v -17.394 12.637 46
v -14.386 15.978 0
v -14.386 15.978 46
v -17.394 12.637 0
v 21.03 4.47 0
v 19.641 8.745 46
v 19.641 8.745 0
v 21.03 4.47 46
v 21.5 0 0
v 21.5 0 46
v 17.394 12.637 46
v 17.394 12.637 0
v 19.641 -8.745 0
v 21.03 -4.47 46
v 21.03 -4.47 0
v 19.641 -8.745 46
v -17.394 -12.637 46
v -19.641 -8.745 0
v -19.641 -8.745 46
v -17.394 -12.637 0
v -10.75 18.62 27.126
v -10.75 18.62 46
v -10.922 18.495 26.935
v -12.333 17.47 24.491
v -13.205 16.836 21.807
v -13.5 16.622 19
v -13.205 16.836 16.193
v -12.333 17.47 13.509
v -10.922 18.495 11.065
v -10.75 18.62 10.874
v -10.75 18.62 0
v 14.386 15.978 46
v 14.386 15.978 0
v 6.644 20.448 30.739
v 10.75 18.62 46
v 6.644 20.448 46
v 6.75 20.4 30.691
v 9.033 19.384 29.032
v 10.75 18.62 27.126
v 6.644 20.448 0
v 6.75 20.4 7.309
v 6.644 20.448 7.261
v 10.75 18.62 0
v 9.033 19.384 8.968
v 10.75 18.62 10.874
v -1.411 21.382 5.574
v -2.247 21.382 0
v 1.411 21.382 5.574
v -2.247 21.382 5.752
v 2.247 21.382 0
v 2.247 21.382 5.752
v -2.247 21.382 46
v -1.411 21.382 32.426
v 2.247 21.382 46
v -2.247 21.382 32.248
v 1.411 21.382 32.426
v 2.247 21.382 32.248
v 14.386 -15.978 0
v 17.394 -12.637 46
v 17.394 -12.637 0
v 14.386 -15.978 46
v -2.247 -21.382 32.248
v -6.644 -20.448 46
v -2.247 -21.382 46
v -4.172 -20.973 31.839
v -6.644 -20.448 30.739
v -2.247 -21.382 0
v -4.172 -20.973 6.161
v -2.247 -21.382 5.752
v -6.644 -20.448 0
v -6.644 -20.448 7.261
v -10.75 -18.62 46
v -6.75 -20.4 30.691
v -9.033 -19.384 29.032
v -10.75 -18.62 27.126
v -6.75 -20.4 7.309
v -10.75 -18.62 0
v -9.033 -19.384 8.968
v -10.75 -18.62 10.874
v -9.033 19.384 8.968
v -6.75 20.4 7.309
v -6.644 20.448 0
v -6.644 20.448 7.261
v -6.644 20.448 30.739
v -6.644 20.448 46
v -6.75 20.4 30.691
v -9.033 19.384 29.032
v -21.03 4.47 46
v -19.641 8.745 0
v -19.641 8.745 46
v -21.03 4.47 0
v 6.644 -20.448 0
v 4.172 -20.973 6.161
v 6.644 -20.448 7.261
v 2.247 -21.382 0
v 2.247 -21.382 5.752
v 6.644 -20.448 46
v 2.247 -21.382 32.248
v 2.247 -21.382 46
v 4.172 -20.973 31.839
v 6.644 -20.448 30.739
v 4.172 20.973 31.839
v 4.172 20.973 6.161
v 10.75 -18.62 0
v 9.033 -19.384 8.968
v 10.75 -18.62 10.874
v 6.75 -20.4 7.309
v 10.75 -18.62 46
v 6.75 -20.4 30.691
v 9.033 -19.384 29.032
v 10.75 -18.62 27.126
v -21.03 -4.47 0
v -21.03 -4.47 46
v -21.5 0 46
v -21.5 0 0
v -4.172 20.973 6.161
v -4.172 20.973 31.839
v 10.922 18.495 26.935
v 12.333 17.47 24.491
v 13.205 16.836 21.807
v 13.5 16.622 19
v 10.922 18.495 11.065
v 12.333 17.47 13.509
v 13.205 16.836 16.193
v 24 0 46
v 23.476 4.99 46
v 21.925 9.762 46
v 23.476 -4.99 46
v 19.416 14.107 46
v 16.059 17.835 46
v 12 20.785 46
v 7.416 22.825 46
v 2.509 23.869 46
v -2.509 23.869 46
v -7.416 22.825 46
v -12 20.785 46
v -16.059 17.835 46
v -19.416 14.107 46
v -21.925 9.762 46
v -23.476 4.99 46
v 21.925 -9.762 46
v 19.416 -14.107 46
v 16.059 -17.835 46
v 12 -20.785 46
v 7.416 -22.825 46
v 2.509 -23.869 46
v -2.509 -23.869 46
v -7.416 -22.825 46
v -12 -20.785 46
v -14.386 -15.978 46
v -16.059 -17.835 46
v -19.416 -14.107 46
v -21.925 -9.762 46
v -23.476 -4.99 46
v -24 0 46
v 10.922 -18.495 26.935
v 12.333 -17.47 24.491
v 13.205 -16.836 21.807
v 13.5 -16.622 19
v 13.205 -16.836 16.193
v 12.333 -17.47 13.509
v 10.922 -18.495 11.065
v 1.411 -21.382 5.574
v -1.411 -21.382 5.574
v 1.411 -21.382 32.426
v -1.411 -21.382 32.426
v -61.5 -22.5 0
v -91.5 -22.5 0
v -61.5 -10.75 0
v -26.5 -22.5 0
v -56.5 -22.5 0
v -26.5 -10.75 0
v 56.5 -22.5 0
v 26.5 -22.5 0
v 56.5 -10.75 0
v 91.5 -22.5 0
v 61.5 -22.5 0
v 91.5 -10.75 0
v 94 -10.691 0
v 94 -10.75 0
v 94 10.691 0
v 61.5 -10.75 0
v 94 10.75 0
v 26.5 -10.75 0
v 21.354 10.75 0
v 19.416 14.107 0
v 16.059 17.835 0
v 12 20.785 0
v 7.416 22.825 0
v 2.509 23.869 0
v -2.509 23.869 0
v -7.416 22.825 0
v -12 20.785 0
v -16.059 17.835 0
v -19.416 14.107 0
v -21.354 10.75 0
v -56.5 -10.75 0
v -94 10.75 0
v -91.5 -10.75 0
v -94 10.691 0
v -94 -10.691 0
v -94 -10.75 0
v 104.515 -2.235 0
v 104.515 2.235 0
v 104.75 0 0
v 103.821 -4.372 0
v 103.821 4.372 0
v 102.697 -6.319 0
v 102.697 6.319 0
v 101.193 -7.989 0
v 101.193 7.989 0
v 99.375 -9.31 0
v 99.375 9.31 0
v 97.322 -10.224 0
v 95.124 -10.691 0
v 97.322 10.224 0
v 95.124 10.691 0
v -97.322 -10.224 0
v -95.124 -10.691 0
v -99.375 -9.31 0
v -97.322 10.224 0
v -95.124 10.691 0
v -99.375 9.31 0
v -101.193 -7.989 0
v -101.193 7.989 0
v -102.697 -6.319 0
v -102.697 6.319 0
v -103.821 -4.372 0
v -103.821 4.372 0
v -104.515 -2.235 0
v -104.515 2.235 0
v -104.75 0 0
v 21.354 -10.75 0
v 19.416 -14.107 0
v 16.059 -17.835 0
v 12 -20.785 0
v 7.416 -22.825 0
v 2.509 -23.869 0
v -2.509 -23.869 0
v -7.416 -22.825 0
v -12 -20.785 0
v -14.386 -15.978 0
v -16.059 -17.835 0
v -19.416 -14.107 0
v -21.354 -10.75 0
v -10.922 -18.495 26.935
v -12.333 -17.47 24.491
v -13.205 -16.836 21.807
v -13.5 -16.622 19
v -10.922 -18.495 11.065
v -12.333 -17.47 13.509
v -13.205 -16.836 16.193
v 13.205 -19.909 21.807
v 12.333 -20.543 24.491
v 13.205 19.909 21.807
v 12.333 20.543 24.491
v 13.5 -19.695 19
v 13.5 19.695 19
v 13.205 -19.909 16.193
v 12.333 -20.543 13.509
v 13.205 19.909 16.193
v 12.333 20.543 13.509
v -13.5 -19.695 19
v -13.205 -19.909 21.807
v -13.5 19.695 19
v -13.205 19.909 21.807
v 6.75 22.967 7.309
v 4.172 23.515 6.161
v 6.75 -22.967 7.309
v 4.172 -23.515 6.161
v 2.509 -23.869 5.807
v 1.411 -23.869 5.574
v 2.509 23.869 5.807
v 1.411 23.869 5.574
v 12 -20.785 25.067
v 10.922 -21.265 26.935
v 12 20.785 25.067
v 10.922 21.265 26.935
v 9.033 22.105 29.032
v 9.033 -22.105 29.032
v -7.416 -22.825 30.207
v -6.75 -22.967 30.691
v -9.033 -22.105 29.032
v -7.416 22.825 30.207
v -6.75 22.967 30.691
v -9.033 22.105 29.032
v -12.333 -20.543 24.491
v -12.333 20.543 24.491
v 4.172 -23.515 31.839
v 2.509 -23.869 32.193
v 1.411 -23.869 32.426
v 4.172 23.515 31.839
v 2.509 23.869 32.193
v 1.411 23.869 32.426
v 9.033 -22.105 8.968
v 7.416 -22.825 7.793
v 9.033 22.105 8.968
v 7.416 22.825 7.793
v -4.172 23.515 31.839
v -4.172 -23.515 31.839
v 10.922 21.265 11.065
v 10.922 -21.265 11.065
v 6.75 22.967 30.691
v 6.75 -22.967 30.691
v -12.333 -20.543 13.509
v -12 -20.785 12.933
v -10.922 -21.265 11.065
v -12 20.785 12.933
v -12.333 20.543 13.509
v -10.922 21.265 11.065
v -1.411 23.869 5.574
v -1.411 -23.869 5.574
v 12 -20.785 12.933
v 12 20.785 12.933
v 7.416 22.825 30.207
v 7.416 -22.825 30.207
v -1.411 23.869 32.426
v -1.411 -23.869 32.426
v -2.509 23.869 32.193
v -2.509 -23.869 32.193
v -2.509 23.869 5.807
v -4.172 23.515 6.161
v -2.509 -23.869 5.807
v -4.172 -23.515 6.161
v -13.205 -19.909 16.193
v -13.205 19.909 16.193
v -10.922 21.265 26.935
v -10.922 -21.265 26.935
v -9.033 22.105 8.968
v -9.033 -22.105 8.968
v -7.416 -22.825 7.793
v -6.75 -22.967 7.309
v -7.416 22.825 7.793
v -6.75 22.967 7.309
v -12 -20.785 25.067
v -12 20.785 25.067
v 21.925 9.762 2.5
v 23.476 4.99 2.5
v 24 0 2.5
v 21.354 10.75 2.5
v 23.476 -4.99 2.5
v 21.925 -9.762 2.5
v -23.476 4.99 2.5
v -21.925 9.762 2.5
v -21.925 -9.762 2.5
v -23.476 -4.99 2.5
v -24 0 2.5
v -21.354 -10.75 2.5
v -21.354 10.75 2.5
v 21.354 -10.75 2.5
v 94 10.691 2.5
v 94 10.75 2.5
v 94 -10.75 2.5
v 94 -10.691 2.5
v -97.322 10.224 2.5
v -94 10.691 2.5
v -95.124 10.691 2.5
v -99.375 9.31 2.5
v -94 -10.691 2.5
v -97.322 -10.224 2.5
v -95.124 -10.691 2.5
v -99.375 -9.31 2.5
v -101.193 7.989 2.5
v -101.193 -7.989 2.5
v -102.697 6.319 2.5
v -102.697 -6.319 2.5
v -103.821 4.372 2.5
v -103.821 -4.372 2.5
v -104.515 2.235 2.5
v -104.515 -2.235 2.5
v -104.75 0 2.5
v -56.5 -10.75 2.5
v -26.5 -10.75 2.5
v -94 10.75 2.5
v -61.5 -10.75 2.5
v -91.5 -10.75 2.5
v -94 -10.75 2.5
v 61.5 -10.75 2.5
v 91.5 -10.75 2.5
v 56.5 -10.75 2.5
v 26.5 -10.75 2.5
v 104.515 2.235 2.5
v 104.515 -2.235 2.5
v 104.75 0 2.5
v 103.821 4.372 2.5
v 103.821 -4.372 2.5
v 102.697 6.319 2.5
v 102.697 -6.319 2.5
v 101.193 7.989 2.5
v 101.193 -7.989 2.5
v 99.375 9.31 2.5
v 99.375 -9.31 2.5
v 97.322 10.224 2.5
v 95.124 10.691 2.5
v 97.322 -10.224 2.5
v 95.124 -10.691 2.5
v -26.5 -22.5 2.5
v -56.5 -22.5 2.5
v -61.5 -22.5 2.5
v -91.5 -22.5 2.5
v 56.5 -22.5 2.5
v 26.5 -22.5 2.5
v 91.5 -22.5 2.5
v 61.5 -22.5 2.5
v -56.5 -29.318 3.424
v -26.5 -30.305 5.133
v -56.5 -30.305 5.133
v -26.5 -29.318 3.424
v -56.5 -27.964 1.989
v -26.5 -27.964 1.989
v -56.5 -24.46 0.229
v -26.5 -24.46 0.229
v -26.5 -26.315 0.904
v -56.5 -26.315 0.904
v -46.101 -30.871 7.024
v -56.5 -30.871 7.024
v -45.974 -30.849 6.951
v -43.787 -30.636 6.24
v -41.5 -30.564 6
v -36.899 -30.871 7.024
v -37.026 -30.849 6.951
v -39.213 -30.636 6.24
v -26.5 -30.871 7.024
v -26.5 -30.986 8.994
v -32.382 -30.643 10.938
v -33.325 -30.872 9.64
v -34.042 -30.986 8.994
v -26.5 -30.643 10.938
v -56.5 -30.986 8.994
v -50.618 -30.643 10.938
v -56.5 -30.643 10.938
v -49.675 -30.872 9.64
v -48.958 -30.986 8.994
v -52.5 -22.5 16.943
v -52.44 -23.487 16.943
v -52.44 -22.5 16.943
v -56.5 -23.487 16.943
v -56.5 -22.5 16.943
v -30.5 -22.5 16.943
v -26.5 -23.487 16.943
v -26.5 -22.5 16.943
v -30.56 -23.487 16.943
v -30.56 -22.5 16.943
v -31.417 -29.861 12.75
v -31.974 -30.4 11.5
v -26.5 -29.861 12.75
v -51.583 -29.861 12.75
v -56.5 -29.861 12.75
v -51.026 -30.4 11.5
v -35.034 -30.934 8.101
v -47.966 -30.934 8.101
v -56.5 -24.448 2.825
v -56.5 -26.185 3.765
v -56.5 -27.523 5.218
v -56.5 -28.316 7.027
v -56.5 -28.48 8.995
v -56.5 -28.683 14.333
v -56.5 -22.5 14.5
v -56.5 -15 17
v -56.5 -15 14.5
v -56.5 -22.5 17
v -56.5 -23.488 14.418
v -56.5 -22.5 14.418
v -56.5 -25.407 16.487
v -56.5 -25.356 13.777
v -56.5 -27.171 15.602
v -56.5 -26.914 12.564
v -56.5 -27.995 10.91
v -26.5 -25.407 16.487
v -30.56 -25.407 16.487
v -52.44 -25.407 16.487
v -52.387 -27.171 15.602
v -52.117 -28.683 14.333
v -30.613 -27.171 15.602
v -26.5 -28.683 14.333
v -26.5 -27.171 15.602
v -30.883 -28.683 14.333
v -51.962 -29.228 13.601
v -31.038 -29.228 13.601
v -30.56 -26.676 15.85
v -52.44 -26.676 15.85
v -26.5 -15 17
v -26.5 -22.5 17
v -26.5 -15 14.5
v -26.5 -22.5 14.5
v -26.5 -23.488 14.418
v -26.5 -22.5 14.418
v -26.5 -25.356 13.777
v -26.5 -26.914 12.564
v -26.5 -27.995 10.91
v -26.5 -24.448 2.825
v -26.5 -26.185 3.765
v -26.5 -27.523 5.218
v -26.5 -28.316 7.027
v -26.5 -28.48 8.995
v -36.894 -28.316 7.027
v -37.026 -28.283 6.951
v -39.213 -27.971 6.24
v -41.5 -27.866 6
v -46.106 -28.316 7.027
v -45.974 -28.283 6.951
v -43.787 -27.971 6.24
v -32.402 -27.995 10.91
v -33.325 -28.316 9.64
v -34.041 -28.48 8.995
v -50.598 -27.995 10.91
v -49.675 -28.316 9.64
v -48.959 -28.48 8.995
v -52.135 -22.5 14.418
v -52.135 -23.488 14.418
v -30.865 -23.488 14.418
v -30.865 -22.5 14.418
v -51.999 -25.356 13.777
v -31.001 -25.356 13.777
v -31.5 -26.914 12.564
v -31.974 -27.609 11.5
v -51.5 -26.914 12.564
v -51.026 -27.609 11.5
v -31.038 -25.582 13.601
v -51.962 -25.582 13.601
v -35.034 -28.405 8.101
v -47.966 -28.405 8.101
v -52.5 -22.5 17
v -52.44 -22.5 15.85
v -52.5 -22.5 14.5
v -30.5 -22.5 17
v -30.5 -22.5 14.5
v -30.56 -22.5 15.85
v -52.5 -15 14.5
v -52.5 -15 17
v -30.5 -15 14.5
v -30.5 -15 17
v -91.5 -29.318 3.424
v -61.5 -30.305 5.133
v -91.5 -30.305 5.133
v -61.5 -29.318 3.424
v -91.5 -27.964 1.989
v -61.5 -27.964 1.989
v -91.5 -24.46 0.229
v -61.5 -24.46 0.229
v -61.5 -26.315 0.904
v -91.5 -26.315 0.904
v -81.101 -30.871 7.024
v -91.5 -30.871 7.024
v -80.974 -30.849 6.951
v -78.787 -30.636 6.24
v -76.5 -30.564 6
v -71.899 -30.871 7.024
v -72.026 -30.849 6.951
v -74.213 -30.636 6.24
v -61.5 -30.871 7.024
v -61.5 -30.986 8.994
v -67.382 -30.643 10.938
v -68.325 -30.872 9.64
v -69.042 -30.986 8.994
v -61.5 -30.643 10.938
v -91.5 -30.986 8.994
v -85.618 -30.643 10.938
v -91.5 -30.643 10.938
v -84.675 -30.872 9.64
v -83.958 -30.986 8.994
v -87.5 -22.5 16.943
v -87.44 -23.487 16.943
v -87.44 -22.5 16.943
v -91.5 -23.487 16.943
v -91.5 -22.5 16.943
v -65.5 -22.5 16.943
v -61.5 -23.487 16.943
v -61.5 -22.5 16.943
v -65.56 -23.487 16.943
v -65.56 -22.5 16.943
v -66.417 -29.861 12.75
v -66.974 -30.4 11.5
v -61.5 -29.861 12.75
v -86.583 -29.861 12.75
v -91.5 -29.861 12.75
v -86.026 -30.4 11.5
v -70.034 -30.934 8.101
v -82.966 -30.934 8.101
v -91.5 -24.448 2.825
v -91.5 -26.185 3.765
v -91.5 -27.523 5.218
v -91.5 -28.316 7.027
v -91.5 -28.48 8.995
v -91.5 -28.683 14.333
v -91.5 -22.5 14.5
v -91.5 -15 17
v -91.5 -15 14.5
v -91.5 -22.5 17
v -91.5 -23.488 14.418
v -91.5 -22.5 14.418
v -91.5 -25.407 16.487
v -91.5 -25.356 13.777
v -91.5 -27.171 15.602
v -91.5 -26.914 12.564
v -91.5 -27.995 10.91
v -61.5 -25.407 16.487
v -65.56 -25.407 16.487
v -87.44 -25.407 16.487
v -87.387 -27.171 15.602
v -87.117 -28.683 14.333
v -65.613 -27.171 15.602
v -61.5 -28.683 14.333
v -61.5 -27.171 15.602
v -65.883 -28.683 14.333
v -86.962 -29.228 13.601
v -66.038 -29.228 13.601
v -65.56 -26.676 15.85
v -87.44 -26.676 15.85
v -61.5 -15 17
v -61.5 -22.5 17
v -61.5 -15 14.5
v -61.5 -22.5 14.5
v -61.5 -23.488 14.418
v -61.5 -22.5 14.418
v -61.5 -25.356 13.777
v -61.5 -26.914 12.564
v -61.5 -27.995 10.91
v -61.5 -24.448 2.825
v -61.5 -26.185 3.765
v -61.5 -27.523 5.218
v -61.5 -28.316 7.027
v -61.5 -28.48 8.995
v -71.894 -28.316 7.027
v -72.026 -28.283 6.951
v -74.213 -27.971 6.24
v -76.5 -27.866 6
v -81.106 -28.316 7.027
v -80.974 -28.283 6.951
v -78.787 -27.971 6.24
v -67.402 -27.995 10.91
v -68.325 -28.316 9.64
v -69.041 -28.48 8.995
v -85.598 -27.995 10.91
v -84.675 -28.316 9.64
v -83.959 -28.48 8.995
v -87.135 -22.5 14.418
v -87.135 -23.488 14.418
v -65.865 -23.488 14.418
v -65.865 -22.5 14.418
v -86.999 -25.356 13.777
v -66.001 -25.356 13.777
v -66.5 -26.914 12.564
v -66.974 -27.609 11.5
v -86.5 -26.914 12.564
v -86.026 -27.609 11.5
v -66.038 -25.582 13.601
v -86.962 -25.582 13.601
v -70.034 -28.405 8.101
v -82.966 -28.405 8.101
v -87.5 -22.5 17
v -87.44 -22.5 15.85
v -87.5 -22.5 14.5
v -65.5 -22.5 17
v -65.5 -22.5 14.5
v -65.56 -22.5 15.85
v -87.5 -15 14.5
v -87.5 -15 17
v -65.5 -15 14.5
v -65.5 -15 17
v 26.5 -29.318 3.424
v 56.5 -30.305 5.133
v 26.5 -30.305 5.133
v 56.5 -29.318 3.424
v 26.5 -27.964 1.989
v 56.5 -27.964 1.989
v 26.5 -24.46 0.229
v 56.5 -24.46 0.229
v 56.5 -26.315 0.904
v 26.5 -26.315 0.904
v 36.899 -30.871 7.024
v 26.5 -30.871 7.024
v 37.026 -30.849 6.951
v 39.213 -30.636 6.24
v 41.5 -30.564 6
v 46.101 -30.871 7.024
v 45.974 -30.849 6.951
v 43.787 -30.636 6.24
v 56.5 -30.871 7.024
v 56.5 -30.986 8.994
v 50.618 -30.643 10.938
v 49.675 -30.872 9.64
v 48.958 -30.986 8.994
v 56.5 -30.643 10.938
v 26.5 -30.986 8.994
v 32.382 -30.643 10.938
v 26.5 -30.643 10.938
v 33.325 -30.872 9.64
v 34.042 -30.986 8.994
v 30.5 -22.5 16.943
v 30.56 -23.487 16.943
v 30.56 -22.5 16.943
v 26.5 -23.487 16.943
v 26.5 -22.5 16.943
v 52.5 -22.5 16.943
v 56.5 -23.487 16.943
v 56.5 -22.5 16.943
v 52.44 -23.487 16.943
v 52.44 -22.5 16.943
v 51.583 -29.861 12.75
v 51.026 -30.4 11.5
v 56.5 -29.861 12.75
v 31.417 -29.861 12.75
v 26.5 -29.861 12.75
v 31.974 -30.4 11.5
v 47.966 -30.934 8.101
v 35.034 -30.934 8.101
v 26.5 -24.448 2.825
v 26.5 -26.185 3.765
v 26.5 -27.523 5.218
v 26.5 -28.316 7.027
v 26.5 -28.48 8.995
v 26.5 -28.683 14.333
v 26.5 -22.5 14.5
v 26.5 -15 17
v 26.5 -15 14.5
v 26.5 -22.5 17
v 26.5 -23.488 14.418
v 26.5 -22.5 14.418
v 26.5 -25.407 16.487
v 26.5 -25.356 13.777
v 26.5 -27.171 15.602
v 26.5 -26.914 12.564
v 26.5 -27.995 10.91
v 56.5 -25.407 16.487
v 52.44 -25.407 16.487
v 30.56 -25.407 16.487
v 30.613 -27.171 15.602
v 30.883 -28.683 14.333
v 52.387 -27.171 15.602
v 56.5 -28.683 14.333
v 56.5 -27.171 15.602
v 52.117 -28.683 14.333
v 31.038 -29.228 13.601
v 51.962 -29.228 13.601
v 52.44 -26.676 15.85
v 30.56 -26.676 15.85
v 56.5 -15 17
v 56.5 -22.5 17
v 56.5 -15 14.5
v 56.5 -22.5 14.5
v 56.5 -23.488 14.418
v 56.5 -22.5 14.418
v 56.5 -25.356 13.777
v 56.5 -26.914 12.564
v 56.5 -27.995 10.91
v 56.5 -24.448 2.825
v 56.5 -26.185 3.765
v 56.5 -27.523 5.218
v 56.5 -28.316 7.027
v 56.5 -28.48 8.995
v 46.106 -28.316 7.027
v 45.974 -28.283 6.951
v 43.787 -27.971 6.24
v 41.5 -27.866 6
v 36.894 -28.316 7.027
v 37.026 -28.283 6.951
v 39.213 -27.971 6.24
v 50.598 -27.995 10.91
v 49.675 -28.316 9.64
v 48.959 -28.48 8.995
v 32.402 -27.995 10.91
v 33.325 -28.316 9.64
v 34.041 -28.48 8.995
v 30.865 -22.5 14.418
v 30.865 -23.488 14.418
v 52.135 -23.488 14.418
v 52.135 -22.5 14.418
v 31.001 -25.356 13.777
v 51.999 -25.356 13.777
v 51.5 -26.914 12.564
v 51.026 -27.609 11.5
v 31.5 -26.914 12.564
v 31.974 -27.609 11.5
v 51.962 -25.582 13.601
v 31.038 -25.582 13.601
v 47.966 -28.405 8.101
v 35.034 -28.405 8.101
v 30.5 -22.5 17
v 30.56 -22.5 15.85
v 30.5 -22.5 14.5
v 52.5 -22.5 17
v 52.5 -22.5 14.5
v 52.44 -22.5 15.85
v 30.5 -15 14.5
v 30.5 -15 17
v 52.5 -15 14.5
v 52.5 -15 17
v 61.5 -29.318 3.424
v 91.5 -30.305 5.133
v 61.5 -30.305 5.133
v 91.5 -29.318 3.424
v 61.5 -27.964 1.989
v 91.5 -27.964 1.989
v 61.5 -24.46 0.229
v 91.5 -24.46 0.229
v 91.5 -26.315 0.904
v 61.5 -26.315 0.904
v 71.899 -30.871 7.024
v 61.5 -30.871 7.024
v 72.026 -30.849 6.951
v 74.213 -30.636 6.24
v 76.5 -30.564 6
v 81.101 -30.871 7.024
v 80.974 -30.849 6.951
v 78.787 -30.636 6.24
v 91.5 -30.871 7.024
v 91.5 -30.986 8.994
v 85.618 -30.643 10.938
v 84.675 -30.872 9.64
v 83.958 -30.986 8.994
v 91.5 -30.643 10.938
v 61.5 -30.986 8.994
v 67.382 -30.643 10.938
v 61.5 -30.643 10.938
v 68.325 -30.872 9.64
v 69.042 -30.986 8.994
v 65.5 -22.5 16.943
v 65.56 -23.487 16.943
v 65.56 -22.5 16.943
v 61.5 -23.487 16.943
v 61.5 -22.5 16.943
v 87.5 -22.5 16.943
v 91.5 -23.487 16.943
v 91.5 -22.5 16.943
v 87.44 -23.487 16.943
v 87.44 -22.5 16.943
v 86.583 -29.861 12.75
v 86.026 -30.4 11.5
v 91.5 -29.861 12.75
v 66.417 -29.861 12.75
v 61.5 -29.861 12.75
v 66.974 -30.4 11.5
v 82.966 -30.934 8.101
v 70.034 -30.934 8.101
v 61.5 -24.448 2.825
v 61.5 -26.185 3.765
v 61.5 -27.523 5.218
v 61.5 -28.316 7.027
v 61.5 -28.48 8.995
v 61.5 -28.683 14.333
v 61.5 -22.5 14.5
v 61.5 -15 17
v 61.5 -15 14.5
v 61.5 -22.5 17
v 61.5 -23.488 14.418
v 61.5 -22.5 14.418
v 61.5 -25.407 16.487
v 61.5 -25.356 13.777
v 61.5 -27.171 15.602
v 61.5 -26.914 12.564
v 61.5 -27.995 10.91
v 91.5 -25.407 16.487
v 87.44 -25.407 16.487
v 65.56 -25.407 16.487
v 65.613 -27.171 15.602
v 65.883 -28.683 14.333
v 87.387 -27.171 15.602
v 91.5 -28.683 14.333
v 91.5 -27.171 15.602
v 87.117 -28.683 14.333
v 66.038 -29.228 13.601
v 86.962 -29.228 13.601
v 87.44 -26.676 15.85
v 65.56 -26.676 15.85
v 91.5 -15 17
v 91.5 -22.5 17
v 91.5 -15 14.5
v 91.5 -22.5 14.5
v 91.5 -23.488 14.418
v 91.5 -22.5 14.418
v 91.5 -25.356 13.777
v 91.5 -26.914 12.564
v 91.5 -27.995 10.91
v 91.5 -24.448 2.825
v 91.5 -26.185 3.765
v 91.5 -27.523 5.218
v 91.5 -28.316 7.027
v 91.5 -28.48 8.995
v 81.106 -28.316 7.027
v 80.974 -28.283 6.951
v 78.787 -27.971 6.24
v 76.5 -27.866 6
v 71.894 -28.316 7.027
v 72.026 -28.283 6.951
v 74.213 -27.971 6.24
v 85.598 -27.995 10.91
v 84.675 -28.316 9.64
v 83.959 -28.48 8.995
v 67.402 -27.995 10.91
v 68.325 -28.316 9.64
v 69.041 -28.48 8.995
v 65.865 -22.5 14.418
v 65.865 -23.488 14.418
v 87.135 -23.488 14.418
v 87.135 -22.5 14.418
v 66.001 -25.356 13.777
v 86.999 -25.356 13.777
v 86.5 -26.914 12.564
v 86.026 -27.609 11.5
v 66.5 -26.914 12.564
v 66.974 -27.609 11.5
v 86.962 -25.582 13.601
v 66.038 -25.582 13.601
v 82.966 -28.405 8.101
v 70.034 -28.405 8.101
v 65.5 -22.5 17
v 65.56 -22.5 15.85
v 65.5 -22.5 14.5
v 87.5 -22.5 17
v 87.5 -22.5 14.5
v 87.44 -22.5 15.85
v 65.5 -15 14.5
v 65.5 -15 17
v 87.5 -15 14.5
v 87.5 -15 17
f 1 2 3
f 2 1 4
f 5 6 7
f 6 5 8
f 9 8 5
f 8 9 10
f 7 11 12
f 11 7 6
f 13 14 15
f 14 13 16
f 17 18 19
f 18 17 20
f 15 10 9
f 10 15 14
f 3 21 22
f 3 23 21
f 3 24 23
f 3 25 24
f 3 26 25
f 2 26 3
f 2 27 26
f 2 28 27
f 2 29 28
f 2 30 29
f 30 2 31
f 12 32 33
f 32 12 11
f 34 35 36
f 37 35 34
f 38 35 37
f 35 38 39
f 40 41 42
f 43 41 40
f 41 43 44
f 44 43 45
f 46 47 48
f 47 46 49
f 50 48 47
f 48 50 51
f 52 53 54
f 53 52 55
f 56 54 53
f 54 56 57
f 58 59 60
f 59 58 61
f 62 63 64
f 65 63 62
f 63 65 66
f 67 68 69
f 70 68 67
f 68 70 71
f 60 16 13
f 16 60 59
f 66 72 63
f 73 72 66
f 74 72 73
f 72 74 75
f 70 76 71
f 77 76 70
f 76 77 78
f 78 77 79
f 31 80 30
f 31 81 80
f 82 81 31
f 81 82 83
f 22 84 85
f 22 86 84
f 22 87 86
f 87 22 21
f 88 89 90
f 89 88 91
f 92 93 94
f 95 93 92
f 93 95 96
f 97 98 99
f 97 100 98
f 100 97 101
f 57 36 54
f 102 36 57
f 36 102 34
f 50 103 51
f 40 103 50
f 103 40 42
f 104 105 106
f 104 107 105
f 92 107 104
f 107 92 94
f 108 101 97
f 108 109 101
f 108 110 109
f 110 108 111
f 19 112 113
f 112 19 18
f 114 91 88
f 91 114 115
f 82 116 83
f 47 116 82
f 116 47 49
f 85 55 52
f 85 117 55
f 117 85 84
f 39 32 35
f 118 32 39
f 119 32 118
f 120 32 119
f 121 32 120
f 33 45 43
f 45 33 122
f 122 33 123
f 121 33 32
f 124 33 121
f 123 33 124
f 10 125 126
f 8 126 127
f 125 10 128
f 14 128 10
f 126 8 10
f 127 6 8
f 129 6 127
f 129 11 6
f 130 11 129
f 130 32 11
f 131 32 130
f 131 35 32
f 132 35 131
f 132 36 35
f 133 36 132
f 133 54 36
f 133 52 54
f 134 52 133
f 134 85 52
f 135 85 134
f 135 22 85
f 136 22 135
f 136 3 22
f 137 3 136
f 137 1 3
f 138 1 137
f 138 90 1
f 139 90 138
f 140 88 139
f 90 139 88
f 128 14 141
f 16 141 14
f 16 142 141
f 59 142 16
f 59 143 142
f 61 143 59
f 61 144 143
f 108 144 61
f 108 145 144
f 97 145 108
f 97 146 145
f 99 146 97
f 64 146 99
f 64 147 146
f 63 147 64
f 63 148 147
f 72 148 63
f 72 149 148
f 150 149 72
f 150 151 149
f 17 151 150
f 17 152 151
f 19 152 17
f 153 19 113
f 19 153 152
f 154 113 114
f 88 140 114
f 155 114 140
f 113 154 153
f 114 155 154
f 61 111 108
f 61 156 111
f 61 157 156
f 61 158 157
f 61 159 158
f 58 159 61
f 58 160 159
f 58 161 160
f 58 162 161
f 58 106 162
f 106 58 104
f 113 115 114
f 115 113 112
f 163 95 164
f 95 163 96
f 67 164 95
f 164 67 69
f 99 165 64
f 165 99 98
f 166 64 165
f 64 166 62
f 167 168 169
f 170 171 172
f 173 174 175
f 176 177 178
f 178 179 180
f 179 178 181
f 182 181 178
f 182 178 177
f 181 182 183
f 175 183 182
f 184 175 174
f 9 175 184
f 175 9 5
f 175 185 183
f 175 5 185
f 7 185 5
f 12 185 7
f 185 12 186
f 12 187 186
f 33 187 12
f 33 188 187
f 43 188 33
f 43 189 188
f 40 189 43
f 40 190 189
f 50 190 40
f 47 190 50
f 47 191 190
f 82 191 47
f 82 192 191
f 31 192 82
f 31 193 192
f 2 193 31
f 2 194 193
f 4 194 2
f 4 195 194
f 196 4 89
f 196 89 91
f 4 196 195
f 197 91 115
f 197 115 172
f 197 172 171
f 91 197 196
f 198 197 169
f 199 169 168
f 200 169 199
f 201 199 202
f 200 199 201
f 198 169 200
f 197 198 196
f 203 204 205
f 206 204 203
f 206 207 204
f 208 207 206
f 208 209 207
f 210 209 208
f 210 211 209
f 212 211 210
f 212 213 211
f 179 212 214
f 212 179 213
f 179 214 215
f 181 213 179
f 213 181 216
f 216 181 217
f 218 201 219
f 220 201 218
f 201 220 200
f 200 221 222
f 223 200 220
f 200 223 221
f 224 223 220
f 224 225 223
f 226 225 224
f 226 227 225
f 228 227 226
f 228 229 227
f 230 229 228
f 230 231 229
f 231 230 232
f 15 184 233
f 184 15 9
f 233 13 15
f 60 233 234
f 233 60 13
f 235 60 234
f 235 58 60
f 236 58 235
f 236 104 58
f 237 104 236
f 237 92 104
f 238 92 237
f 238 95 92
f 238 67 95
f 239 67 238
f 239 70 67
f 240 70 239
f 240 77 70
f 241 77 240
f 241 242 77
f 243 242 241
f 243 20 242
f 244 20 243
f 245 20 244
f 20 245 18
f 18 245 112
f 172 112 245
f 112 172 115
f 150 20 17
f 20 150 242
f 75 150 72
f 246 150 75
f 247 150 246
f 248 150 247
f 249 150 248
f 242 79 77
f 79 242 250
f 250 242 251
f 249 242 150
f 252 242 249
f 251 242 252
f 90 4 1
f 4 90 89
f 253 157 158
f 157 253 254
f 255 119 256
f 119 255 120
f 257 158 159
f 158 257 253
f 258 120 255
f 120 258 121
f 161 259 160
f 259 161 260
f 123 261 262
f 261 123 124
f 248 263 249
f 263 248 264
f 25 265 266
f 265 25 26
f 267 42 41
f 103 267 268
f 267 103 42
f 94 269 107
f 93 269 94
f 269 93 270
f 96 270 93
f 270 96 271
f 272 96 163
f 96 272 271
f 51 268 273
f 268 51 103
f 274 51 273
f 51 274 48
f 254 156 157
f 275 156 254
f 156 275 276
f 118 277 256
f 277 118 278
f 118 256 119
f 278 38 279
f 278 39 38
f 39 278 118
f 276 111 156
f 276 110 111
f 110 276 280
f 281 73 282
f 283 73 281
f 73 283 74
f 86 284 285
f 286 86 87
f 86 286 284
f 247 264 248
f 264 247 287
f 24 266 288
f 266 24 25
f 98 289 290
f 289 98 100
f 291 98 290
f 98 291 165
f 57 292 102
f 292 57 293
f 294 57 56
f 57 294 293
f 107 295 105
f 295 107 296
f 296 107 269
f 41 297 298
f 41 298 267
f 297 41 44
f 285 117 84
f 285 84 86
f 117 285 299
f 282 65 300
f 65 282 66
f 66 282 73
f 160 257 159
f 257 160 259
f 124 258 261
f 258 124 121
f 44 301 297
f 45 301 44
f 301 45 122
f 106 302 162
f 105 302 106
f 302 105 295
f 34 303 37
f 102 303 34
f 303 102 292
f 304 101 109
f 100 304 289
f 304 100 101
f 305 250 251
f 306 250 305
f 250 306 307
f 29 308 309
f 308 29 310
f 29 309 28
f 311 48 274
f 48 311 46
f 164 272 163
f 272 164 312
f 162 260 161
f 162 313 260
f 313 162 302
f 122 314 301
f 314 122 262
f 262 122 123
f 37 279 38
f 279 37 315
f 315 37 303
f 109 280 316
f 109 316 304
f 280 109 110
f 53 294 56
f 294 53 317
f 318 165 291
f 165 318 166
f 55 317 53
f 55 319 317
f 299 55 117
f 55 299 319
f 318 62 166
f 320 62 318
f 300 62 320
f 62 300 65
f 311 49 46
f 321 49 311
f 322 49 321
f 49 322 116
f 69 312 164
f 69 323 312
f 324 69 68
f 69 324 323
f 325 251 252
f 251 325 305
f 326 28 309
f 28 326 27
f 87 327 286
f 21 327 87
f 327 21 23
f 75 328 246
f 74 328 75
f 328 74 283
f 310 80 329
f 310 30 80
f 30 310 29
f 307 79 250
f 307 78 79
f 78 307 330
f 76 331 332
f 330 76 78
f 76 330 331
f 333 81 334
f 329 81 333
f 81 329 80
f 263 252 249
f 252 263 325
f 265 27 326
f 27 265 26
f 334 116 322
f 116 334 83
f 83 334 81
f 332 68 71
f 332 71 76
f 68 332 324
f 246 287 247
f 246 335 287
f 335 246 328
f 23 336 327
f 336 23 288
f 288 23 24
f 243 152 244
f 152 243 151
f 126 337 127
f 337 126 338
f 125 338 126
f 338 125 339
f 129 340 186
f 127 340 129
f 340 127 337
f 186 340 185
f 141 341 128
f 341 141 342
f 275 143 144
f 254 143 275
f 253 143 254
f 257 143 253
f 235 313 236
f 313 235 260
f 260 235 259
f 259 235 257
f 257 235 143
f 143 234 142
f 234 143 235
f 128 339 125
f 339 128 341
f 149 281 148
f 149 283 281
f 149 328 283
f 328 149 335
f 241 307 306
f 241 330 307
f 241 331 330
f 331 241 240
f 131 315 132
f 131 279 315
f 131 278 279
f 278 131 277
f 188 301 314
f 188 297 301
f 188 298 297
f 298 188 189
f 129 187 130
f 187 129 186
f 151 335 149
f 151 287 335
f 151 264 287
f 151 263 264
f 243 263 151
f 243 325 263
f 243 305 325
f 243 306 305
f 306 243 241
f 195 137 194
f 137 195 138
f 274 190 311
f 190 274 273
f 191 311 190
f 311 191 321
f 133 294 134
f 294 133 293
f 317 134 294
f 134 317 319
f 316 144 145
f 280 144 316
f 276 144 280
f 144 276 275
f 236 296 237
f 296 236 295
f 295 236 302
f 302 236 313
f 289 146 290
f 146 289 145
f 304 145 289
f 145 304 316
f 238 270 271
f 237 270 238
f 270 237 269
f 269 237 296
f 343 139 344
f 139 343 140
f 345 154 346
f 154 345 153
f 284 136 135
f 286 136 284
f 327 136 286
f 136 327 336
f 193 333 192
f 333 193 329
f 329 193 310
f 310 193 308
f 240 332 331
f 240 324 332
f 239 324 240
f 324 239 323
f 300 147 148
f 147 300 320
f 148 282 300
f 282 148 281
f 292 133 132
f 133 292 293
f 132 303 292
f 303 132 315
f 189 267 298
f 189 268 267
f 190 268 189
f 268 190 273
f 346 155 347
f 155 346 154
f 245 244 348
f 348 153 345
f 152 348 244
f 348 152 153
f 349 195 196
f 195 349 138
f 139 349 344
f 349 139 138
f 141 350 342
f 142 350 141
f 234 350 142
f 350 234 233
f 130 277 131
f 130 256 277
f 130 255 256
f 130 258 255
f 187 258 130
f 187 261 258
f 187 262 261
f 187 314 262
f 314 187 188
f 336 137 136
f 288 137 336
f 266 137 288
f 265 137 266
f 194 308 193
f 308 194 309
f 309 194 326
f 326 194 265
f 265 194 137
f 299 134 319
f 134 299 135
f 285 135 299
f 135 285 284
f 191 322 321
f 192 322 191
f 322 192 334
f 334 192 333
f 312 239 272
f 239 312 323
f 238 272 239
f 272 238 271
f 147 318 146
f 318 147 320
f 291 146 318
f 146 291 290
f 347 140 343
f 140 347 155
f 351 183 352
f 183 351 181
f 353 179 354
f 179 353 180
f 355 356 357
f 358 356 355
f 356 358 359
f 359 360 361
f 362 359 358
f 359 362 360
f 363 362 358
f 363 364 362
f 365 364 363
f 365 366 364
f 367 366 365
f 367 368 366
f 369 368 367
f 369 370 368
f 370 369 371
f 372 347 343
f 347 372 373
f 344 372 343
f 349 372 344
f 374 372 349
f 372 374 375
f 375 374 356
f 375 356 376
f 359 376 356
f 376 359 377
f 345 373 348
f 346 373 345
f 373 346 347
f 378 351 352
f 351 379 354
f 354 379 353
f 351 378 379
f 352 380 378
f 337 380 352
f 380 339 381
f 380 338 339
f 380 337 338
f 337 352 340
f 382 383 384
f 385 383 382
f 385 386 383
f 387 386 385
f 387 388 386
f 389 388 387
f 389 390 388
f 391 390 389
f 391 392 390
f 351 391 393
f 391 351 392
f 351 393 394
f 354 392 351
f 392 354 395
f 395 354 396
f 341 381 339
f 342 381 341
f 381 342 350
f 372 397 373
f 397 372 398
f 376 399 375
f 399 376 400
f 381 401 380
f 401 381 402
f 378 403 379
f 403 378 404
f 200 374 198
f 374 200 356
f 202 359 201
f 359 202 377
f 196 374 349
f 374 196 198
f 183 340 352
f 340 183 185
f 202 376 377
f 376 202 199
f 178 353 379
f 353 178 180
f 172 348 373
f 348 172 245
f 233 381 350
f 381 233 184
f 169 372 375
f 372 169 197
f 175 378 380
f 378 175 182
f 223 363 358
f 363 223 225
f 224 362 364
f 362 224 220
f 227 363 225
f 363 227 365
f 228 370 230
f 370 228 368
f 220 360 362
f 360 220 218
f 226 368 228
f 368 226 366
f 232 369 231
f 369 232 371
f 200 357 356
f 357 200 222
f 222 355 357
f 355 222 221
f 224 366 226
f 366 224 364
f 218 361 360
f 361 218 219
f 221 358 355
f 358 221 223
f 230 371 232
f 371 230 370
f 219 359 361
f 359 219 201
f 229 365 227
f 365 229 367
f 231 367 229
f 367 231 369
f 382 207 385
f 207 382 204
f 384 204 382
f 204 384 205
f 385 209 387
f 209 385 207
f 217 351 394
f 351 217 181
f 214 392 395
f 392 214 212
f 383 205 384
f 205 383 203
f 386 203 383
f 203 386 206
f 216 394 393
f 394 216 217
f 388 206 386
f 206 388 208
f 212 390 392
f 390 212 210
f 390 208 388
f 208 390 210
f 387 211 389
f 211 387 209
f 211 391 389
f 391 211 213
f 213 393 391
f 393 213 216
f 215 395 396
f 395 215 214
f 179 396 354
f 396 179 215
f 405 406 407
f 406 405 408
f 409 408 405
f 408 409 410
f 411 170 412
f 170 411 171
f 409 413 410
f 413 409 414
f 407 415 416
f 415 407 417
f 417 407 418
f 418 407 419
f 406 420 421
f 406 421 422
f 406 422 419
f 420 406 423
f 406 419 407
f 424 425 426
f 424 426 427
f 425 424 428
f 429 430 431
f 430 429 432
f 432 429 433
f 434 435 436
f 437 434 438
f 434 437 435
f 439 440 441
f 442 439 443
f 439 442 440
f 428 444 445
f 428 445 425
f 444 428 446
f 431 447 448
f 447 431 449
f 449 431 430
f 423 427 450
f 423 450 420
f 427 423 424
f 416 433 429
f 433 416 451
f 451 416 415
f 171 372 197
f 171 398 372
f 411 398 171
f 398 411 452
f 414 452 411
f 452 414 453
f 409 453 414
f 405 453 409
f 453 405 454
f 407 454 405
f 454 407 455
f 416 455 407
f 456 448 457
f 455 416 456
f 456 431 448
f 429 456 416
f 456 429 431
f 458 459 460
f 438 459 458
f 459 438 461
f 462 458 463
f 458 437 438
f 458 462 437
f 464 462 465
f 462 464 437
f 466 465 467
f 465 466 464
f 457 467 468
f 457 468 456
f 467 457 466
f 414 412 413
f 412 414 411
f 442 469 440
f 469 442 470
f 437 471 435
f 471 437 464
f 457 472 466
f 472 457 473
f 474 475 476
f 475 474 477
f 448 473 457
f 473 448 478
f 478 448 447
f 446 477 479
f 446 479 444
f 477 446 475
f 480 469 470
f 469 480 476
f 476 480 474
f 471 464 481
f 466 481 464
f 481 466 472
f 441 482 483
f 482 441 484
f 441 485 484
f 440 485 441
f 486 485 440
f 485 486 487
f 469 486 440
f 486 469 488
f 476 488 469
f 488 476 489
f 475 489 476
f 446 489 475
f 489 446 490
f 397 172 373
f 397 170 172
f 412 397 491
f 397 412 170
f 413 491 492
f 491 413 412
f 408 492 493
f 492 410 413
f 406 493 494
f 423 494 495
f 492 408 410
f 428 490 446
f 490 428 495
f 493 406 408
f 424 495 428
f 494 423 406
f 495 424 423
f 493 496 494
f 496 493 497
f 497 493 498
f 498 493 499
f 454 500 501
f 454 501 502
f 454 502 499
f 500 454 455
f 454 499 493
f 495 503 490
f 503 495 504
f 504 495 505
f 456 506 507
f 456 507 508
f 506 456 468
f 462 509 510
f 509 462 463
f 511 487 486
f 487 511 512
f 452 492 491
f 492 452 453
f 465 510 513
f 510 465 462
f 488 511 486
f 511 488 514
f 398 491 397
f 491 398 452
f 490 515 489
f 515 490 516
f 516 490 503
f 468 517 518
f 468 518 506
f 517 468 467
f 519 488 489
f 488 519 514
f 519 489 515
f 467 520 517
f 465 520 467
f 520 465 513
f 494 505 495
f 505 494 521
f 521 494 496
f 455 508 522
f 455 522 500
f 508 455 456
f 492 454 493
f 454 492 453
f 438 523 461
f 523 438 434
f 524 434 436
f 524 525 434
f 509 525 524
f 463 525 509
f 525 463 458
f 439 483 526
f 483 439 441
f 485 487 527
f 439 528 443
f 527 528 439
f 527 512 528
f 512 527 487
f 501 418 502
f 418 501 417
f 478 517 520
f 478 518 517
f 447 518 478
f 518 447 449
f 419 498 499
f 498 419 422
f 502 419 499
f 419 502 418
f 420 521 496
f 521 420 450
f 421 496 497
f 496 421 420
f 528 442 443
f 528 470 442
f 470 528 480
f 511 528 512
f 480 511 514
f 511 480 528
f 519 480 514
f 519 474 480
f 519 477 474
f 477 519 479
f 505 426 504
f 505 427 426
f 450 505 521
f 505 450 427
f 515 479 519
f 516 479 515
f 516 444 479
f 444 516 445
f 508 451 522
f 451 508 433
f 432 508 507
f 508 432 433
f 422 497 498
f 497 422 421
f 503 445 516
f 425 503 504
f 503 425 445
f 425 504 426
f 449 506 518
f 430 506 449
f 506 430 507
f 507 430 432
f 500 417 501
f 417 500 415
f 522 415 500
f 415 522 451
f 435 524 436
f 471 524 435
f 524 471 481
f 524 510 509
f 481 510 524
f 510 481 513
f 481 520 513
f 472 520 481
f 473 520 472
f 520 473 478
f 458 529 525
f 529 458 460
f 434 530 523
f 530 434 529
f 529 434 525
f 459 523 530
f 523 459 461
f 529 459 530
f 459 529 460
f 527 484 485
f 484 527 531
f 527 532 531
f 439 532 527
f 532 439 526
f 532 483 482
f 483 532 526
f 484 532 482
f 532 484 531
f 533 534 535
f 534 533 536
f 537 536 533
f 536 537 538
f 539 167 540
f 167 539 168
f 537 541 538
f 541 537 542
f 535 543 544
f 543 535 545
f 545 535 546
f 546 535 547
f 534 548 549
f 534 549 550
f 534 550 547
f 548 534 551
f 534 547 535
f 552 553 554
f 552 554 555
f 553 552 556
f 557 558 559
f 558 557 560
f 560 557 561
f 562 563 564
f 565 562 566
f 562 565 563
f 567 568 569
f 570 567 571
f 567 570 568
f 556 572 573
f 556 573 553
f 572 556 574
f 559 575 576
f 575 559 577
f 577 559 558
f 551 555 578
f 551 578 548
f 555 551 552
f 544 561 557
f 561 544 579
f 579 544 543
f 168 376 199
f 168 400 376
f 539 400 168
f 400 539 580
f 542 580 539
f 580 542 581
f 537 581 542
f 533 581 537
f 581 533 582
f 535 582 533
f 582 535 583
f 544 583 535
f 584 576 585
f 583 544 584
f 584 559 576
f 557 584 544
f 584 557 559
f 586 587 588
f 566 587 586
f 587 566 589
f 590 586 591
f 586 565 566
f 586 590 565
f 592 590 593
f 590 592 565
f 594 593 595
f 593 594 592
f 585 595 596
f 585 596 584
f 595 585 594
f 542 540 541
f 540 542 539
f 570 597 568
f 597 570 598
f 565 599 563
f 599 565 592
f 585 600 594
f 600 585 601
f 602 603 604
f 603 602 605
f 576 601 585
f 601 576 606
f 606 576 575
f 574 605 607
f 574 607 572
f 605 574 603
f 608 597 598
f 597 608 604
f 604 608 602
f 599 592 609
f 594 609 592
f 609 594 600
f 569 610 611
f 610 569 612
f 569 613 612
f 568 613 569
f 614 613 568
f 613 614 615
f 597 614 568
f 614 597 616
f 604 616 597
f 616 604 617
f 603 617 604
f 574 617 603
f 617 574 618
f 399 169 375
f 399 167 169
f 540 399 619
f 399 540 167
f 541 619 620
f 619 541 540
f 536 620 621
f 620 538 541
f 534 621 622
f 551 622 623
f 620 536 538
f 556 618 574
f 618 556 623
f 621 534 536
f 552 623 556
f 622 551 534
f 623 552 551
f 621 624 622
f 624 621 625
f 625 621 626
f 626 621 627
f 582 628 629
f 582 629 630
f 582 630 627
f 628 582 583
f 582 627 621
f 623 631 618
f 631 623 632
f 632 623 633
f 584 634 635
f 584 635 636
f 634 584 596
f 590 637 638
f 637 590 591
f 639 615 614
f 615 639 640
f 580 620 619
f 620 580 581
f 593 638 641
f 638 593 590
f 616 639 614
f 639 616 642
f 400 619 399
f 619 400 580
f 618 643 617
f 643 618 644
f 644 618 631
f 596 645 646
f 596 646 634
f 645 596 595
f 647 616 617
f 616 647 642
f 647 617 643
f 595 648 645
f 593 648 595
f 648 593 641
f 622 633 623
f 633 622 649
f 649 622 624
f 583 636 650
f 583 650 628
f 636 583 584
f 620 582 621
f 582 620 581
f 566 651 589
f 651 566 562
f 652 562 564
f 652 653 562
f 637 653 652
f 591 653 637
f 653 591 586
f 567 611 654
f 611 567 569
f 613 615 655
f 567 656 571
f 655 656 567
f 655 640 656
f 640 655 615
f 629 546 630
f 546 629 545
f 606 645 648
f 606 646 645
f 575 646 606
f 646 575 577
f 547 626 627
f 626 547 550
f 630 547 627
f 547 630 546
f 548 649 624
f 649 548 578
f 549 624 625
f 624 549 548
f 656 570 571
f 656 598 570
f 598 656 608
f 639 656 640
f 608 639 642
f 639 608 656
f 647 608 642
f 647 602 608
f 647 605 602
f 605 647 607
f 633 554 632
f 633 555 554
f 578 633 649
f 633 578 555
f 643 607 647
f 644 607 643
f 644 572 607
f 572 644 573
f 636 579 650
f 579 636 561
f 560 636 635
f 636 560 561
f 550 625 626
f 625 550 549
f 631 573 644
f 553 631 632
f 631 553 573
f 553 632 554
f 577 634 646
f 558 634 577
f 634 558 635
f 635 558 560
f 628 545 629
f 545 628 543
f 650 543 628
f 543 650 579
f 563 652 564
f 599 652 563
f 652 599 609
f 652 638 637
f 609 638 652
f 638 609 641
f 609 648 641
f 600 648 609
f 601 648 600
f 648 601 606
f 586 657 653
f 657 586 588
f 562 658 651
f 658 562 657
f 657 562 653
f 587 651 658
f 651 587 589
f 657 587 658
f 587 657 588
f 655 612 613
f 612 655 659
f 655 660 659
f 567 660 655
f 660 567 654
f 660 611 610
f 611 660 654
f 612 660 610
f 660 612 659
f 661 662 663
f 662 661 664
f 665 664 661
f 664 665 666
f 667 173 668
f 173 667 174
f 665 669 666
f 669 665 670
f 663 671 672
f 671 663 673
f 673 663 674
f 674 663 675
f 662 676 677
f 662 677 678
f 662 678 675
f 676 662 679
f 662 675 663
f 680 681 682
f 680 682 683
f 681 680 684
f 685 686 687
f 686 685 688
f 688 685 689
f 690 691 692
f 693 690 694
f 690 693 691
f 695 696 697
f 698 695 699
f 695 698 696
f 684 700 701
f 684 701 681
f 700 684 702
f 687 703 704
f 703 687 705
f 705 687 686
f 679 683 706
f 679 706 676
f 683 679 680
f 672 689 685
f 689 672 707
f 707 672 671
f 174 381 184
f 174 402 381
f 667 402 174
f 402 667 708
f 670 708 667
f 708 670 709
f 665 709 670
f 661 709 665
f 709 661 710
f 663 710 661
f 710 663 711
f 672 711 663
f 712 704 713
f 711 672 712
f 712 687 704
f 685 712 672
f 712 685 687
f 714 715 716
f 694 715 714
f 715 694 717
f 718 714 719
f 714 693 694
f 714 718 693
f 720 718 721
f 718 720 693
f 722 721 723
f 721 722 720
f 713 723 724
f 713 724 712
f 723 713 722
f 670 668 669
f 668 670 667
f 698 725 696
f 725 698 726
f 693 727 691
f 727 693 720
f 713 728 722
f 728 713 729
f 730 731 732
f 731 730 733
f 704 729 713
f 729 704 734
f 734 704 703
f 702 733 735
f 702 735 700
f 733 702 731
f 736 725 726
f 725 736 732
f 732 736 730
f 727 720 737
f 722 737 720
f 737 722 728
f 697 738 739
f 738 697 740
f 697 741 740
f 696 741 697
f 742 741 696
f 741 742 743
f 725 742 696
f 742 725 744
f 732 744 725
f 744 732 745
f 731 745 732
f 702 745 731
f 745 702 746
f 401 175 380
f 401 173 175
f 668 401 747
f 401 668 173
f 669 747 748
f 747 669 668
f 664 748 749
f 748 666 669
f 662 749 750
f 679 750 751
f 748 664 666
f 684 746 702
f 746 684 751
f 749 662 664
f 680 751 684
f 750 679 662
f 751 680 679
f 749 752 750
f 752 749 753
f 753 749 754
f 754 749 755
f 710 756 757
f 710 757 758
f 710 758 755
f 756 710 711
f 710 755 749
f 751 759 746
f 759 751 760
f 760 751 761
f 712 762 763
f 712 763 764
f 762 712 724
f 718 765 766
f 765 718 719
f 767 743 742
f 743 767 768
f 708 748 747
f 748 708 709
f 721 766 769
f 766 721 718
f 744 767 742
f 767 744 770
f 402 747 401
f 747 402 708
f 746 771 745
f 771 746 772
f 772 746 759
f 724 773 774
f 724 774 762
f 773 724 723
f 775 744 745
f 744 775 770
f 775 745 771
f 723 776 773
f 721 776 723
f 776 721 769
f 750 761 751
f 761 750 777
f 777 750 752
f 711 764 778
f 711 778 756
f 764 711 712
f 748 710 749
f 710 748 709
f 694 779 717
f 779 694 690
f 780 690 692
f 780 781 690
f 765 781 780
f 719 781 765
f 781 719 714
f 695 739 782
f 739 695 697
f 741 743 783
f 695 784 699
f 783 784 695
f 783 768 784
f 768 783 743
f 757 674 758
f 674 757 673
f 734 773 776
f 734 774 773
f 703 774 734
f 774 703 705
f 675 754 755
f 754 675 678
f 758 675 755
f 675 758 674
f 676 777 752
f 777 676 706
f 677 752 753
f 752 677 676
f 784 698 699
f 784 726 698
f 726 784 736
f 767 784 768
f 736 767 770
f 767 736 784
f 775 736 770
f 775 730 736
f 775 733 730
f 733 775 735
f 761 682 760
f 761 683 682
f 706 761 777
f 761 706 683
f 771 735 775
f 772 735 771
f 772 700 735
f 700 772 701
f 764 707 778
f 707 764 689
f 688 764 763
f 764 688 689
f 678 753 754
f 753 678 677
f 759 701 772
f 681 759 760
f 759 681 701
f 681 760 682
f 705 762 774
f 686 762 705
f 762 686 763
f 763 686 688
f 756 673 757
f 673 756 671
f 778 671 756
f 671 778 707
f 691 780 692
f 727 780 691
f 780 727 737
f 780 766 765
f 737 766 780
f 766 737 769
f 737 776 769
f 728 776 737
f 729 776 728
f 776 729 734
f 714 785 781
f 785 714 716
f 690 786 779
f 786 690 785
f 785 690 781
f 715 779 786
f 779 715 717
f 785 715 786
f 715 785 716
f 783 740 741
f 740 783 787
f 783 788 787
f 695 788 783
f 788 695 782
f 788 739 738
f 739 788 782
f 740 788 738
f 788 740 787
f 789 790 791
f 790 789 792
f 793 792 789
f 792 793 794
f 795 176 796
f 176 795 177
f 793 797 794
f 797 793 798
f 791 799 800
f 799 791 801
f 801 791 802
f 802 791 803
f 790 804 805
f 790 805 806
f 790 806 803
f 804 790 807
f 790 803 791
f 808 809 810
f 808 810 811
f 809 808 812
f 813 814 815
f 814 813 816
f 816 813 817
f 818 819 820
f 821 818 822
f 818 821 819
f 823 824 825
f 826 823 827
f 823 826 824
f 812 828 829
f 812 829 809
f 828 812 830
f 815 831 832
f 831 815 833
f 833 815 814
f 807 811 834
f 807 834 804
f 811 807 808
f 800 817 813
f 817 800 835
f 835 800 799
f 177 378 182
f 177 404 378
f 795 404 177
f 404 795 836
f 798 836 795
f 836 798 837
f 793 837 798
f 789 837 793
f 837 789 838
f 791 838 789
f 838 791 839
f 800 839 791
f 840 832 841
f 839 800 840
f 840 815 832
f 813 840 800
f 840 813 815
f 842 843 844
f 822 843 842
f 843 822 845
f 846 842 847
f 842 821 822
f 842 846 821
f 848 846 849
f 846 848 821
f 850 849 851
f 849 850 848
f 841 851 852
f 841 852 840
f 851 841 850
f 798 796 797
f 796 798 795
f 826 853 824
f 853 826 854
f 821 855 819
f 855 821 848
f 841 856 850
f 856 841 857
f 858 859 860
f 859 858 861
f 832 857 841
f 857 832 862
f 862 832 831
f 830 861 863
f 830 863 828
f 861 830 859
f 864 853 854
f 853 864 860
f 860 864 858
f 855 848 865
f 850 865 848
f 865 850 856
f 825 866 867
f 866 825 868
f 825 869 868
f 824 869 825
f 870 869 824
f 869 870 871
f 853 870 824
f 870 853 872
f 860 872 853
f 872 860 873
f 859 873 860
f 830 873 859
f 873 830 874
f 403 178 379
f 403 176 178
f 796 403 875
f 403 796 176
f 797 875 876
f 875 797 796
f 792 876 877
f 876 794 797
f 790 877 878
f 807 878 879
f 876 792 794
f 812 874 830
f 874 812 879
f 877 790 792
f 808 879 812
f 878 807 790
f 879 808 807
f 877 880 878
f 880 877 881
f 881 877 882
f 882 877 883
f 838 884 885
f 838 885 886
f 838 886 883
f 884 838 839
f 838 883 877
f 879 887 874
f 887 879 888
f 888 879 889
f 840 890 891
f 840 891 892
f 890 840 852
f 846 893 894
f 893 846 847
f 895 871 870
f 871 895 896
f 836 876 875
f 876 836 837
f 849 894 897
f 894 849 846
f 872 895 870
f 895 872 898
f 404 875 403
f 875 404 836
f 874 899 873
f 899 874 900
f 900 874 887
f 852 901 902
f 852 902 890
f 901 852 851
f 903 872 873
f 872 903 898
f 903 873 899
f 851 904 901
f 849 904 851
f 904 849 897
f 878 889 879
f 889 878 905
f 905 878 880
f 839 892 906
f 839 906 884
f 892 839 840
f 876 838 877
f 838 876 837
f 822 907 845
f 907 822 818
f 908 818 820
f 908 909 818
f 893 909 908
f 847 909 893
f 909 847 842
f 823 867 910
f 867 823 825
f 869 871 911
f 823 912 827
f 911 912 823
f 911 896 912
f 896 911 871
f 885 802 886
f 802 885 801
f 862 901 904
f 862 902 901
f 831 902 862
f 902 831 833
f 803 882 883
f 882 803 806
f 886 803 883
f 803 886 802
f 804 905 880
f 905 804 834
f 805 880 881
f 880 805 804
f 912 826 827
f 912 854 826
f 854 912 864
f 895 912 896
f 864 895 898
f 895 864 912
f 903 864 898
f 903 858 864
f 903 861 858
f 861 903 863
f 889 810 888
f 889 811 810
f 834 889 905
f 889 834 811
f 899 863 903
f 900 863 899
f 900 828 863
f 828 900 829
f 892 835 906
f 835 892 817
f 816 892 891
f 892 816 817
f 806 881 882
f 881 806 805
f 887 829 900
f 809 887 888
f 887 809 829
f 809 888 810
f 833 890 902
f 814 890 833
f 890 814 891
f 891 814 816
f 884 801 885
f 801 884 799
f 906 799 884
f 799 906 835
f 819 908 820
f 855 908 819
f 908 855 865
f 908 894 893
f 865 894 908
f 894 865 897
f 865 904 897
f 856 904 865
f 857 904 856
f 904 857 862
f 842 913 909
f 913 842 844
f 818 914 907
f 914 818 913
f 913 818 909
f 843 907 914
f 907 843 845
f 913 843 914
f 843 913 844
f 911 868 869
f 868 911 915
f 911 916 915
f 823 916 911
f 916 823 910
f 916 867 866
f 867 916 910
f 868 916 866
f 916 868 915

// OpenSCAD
// Drzak holitek na sprchovou tyc
// navleka se na dolni konzoli
// tloustka steny
wall = 2.5;
// prumer konsole
konsd1 = 43;
// prumer tycky
tycd1 = 27;
// hloubka uchyceni
uchyth = 19;
// sirka drzaku
drzaks = 30;
drzakob = 12;
drzakmez = 22;
pdrz = 4;

module uchyceni() {
//  sirkapasu na drzaky pdrz*(drzaks+2*wall)+(konsd+2*wall)
  sirkapasu = pdrz*(drzaks+2*wall)+(konsd1+2*wall); 
  difference() {
    union() {
      cylinder(h=uchyth+tycd1, d=konsd1+2*wall);
      translate([-(sirkapasu/2),-(konsd1/4),0]) cube([sirkapasu,konsd1/2,wall]);
      translate([-(sirkapasu/2),0,0]) cylinder(h=wall,d=konsd1/2);
      translate([sirkapasu/2,0,0]) cylinder(h=wall,d=konsd1/2);  
    }    
    union() {
      cylinder(h=uchyth+tycd1, d=konsd1);  
      translate([0,(konsd1 + 2*wall)/2,uchyth]) 
        rotate([90,0,0]) 
          cylinder(h = konsd1+2*wall, d = tycd1);  
    }  
   }
}

module drzak() {
  translate([-drzaks/2,0,drzakob/2+wall])
    rotate([0,90,0])
    union() {
    translate([-(drzakob/2+wall), 0 ,0]) cube([wall,3*wall,(drzaks - drzakmez)/2]); 
    translate([-(drzakob/2+wall), 0 ,drzaks-(drzaks - drzakmez)/2]) cube([wall,3*wall,(drzaks - drzakmez)/2]); 
    difference() { 
        union() {
            cylinder(h=drzaks, d=drzakob+2*wall);
            translate([drzakob/2, 0 ,0]) cube([wall,drzaks,drzaks]); 
        } 
        union() { // odcitana cast
           cylinder(h=drzaks,d=drzakob); 
           translate([-(drzakob/2+2*wall), 0 ,0]) cube([drzakob+2*wall,drzakob,drzaks]);
           translate([-(drzakob/2+wall), -drzakob,drzaks/2]) rotate([-90,0,0]) cylinder(h=drzaks, d=drzakmez); 
       }
   }
  }
}



uchyceni();
translate([-(drzaks/2 + konsd1/2 + 2*wall),-(1.5*drzaks)/2,0]) drzak();
translate([-(drzaks + drzaks/2 + konsd1/2 + 4*wall),-(1.5*drzaks)/2,0]) drzak();
translate([(drzaks/2 + konsd1/2 + 2*wall),-(1.5*drzaks)/2,0]) drzak();
translate([(drzaks + drzaks/2 + konsd1/2 + 4*wall),-(1.5*drzaks)/2,0]) drzak();
